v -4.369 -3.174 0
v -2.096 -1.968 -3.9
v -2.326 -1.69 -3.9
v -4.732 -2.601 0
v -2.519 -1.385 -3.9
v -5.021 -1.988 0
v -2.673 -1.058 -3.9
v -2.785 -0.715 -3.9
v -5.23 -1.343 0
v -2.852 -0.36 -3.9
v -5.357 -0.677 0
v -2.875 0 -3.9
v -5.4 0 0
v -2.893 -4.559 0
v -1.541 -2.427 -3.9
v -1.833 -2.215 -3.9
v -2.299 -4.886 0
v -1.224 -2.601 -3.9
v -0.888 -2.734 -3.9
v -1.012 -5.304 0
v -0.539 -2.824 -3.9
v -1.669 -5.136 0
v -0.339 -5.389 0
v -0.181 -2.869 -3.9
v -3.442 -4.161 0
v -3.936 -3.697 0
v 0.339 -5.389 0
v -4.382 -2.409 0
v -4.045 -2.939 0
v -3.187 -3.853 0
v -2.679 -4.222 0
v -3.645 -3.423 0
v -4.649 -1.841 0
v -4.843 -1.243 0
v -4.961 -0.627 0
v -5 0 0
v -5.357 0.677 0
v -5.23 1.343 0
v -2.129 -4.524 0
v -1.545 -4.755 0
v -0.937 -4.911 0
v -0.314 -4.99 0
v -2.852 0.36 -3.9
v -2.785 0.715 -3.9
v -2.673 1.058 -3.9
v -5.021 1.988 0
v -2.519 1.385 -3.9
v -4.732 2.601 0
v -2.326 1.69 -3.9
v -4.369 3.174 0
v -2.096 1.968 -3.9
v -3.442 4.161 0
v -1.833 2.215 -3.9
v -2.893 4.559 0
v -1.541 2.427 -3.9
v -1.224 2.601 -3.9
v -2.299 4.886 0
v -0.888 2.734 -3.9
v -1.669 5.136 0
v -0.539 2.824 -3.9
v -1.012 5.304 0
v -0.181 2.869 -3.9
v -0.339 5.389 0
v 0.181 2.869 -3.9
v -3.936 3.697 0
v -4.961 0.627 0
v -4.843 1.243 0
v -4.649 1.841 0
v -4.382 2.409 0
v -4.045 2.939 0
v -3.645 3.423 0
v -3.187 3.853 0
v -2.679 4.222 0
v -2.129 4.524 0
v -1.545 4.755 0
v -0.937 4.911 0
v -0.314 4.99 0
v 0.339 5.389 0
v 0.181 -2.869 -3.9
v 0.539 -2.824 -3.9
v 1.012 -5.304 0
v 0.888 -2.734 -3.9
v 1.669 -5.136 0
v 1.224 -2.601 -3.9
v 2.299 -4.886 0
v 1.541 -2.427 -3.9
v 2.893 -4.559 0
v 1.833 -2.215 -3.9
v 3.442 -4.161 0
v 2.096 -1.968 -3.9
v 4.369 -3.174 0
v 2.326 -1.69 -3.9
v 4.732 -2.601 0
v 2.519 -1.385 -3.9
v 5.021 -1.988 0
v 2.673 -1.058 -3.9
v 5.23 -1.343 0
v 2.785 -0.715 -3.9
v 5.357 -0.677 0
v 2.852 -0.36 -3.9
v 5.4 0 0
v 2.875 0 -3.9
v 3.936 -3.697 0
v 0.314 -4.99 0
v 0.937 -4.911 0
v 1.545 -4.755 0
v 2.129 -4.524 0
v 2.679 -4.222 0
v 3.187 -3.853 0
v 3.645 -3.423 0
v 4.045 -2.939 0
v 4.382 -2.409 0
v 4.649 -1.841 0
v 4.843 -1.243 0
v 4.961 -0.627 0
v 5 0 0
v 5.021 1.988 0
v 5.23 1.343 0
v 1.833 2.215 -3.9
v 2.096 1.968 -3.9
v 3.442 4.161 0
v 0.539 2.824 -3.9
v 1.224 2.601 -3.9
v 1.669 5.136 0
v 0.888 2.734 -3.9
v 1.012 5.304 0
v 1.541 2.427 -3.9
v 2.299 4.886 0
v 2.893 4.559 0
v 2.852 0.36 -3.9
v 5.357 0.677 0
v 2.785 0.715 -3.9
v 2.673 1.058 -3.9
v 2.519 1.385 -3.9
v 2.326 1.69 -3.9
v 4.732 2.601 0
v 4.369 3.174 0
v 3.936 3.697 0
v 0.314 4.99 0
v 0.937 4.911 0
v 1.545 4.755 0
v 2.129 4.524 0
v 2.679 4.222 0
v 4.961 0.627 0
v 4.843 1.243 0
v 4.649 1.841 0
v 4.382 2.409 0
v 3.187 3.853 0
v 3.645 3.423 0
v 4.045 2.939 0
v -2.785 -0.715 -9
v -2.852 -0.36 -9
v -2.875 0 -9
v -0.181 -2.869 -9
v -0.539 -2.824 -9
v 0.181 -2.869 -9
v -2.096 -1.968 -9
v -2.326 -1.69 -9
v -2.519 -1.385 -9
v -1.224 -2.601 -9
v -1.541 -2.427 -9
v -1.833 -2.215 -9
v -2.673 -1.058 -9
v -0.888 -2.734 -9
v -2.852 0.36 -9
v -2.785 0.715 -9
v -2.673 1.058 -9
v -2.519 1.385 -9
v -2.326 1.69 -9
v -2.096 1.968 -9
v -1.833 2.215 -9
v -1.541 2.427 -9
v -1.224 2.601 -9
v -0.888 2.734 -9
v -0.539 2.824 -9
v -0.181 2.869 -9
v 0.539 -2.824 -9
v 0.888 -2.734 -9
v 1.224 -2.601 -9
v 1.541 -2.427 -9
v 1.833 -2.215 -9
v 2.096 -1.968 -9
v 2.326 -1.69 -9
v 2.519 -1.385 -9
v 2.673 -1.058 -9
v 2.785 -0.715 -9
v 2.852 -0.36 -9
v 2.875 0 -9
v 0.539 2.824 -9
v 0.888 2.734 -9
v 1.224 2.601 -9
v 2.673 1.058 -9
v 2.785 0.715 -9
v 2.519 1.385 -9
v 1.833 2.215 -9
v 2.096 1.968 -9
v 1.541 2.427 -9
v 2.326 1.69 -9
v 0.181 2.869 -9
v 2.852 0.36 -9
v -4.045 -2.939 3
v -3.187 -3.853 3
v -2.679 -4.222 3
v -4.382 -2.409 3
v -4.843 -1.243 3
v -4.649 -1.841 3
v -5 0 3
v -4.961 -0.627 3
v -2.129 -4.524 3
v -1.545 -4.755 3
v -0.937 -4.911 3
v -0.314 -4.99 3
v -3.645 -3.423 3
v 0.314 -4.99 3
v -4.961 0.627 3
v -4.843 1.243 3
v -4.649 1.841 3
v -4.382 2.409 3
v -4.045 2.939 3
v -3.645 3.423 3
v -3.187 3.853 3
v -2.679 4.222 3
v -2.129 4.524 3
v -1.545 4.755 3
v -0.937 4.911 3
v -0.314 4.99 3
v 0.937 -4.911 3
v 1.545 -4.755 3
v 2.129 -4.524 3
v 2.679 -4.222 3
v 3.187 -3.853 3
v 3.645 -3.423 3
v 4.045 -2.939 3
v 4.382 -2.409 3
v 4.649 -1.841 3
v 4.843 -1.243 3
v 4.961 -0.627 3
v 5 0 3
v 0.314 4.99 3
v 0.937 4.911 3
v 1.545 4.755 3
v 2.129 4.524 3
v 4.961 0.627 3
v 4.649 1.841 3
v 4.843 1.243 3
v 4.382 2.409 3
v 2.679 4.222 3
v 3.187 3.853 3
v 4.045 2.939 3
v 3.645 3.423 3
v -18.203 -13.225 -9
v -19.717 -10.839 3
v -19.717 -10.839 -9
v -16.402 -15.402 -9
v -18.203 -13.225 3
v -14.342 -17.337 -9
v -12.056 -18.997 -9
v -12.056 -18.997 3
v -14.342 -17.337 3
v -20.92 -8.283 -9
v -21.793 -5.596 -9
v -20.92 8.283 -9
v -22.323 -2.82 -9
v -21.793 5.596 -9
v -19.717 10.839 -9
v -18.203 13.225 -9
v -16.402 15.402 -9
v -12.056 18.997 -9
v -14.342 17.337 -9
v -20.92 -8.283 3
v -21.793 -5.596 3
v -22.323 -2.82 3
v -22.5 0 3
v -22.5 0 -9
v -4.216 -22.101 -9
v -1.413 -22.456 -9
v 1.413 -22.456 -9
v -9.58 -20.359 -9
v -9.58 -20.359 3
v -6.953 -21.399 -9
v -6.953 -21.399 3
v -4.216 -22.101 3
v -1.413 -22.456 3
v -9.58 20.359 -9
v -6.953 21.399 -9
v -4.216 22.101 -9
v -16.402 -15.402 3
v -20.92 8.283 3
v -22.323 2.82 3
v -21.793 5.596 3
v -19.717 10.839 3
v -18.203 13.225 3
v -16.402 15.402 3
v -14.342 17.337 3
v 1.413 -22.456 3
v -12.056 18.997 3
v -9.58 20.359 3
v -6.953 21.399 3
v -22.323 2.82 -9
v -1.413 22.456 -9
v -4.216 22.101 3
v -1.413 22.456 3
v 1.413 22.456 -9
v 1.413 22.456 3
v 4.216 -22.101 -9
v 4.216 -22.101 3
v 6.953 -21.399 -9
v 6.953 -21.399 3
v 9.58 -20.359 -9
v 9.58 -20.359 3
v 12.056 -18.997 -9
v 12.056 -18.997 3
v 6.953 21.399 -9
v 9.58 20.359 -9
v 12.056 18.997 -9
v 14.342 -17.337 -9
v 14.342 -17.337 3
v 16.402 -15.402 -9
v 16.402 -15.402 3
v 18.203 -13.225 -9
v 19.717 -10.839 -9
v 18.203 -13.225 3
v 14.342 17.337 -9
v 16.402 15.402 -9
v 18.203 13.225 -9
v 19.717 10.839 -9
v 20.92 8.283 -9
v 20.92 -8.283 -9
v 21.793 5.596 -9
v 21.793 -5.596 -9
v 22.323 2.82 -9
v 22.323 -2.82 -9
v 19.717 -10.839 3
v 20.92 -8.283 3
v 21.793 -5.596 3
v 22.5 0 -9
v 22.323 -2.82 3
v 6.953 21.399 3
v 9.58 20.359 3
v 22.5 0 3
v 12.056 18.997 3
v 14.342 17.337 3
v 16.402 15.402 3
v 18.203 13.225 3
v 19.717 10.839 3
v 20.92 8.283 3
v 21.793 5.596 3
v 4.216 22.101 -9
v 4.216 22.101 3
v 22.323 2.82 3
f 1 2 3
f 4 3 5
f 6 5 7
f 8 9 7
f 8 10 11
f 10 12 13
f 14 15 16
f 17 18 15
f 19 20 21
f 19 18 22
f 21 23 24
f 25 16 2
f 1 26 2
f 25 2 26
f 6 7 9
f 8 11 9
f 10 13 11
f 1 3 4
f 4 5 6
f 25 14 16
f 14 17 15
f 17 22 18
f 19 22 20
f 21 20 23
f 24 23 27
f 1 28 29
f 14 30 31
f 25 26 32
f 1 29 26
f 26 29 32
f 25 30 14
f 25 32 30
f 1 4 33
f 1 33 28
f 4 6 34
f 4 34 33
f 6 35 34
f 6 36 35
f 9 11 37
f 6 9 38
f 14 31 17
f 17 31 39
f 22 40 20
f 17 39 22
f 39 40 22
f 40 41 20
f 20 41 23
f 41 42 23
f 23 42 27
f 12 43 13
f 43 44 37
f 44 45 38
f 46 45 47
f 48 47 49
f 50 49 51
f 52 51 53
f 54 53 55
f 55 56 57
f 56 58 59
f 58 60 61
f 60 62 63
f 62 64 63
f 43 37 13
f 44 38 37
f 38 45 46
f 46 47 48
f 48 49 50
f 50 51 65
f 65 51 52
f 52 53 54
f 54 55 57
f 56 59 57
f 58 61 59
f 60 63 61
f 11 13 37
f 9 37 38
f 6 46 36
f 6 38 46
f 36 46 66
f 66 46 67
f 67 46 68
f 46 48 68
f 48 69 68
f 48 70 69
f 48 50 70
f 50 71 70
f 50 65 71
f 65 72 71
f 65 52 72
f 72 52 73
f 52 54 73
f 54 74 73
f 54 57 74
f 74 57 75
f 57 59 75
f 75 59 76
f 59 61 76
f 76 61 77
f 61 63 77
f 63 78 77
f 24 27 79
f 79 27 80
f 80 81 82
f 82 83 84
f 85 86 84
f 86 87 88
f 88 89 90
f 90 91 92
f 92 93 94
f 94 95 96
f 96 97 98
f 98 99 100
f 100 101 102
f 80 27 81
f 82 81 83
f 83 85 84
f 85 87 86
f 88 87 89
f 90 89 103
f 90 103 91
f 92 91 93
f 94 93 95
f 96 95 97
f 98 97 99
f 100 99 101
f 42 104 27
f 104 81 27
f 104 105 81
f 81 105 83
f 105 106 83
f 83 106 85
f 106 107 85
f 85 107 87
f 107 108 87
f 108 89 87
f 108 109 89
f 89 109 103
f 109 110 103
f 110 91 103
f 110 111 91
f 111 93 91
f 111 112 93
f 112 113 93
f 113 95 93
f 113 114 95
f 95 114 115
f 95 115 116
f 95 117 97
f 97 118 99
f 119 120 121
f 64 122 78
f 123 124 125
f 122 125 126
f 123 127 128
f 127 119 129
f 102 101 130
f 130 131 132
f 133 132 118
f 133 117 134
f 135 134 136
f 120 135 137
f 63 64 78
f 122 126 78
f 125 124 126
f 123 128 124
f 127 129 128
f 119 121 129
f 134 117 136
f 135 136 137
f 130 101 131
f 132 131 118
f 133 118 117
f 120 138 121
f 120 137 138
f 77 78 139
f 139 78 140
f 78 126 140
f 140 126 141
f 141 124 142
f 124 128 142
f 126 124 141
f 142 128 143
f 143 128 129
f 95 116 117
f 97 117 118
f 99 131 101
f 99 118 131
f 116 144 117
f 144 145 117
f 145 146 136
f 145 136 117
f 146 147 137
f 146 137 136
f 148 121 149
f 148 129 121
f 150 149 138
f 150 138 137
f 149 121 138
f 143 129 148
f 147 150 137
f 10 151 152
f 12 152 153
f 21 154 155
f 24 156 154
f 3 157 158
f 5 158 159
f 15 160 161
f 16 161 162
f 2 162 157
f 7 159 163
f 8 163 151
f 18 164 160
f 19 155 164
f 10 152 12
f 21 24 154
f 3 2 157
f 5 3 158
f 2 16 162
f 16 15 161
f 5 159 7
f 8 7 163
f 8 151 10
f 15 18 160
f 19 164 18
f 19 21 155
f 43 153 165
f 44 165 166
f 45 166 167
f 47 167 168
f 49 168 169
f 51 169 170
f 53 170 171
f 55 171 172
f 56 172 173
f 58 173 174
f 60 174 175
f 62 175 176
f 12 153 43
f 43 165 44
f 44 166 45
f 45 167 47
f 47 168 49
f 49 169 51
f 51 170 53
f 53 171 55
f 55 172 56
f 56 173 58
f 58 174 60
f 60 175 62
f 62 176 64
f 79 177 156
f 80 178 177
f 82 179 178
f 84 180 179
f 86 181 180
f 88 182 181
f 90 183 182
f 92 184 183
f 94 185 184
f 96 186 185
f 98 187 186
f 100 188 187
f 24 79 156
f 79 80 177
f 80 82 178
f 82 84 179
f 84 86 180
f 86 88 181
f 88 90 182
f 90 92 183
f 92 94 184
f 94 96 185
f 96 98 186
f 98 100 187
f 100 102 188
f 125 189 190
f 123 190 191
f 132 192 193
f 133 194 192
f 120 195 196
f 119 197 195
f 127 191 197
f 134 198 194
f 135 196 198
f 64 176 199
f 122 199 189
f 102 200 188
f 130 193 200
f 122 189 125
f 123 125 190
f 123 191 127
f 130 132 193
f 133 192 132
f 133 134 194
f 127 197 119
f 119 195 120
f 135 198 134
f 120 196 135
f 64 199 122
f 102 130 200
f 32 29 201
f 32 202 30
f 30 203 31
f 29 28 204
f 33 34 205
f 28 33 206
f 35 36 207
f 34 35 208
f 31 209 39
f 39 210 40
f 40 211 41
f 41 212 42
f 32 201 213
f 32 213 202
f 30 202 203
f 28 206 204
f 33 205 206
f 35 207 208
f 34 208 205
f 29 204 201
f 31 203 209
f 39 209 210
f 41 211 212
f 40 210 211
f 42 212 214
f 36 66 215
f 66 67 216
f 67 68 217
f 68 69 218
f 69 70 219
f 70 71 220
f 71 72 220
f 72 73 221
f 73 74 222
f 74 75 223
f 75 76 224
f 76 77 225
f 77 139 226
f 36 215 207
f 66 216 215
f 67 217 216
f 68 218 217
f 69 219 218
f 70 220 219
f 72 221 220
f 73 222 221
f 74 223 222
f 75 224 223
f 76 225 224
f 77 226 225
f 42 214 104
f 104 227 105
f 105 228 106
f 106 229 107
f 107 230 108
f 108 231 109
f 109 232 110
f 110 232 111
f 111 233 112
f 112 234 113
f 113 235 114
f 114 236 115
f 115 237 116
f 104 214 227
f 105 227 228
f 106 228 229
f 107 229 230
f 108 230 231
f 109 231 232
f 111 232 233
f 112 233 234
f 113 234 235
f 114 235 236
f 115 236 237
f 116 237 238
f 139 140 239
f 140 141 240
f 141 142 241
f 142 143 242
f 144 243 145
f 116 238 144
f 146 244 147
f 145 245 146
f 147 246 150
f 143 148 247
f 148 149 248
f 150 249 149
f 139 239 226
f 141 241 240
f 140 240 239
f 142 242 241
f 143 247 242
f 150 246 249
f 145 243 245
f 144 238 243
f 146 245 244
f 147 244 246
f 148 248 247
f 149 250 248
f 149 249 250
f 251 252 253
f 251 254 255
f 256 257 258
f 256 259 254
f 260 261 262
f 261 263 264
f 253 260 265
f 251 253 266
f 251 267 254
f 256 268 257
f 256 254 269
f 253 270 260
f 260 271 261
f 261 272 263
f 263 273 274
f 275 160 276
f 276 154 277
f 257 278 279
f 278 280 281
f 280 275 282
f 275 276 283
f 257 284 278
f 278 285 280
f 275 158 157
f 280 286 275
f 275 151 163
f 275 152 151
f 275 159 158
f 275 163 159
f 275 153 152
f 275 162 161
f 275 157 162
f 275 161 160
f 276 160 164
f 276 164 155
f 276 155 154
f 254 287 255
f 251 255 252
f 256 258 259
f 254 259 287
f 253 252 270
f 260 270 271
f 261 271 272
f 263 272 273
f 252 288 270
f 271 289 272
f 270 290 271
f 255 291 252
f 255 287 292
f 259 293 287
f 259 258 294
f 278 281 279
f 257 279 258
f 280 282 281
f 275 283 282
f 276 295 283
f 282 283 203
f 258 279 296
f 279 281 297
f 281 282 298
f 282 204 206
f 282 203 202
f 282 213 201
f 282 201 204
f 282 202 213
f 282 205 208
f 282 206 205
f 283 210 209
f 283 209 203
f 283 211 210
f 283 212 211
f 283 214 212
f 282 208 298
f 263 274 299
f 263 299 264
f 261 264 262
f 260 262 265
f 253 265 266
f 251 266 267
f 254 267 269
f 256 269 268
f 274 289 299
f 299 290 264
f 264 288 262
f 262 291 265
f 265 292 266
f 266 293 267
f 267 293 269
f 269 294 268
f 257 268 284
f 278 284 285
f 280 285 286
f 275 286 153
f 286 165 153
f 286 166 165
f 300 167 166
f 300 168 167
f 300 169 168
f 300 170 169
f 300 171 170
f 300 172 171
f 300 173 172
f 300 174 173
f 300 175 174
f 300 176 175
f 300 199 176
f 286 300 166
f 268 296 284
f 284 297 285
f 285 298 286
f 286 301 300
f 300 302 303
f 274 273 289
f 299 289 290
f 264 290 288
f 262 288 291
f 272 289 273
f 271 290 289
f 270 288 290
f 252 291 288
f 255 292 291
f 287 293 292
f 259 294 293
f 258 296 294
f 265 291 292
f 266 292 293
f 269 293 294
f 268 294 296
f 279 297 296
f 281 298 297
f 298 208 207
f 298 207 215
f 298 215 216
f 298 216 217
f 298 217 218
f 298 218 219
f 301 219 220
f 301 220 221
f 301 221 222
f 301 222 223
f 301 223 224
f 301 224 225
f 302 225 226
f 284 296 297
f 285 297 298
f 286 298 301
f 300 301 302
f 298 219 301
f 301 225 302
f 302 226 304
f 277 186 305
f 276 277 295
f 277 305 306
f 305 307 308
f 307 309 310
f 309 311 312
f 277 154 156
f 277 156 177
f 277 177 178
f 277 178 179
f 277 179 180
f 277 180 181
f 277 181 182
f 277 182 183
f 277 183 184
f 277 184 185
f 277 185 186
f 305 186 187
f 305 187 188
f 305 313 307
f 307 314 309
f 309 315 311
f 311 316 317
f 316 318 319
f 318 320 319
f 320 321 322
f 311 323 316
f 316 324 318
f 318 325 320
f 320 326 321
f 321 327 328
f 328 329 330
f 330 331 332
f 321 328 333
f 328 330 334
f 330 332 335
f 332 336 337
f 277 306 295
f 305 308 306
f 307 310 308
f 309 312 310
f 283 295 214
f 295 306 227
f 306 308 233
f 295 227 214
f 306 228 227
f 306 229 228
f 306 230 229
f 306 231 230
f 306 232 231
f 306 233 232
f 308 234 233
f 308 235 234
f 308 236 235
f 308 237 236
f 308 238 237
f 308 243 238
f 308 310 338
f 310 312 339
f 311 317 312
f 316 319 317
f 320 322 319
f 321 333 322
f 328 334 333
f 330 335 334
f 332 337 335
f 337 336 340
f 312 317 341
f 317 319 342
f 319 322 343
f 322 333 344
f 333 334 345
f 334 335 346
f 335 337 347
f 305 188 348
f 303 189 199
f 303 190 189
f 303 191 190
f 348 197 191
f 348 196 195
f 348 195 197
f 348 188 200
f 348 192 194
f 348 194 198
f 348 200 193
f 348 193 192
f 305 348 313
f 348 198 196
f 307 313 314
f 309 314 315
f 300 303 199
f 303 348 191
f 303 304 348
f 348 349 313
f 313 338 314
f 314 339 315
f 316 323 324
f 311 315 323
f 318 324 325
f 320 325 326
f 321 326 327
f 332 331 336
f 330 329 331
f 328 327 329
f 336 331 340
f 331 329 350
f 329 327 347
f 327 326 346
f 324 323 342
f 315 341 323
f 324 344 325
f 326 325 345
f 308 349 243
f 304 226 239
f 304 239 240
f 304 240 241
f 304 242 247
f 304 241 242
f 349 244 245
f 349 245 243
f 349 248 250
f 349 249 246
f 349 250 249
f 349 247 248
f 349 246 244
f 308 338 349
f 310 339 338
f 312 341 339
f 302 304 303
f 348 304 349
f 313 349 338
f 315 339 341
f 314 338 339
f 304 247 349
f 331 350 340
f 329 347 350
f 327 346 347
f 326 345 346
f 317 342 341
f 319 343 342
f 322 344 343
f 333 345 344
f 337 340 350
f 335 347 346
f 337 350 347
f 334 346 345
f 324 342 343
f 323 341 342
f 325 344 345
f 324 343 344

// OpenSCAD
$fn = 50;

difference() {
	union() {
		translate(v = [0, 0, -9.0]) {
			cylinder(h = 12, r = 22.5);
		}
	}
	union() {
		translate(v = [0, 0, 0]) {
			rotate(a = [0, 0, 0]) {
				difference() {
					union() {
						translate(v = [0, 0, -12.0]) {
							cylinder(h = 12, r = 2.6);
						}
						translate(v = [0, 0, -3.9]) {
							cylinder(h = 3.9, r1 = 2.875, r2 = 5.4);
						}
						translate(v = [0, 0, -12.0]) {
							cylinder(h = 12, r = 2.875);
						}
						translate(v = [0, 0, -12.0]) {
							cylinder(h = 12, r = 2.6);
						}
					}
					union();
				}
			}
		}
		#cylinder(h = 3, r = 5.0);
	}
}
